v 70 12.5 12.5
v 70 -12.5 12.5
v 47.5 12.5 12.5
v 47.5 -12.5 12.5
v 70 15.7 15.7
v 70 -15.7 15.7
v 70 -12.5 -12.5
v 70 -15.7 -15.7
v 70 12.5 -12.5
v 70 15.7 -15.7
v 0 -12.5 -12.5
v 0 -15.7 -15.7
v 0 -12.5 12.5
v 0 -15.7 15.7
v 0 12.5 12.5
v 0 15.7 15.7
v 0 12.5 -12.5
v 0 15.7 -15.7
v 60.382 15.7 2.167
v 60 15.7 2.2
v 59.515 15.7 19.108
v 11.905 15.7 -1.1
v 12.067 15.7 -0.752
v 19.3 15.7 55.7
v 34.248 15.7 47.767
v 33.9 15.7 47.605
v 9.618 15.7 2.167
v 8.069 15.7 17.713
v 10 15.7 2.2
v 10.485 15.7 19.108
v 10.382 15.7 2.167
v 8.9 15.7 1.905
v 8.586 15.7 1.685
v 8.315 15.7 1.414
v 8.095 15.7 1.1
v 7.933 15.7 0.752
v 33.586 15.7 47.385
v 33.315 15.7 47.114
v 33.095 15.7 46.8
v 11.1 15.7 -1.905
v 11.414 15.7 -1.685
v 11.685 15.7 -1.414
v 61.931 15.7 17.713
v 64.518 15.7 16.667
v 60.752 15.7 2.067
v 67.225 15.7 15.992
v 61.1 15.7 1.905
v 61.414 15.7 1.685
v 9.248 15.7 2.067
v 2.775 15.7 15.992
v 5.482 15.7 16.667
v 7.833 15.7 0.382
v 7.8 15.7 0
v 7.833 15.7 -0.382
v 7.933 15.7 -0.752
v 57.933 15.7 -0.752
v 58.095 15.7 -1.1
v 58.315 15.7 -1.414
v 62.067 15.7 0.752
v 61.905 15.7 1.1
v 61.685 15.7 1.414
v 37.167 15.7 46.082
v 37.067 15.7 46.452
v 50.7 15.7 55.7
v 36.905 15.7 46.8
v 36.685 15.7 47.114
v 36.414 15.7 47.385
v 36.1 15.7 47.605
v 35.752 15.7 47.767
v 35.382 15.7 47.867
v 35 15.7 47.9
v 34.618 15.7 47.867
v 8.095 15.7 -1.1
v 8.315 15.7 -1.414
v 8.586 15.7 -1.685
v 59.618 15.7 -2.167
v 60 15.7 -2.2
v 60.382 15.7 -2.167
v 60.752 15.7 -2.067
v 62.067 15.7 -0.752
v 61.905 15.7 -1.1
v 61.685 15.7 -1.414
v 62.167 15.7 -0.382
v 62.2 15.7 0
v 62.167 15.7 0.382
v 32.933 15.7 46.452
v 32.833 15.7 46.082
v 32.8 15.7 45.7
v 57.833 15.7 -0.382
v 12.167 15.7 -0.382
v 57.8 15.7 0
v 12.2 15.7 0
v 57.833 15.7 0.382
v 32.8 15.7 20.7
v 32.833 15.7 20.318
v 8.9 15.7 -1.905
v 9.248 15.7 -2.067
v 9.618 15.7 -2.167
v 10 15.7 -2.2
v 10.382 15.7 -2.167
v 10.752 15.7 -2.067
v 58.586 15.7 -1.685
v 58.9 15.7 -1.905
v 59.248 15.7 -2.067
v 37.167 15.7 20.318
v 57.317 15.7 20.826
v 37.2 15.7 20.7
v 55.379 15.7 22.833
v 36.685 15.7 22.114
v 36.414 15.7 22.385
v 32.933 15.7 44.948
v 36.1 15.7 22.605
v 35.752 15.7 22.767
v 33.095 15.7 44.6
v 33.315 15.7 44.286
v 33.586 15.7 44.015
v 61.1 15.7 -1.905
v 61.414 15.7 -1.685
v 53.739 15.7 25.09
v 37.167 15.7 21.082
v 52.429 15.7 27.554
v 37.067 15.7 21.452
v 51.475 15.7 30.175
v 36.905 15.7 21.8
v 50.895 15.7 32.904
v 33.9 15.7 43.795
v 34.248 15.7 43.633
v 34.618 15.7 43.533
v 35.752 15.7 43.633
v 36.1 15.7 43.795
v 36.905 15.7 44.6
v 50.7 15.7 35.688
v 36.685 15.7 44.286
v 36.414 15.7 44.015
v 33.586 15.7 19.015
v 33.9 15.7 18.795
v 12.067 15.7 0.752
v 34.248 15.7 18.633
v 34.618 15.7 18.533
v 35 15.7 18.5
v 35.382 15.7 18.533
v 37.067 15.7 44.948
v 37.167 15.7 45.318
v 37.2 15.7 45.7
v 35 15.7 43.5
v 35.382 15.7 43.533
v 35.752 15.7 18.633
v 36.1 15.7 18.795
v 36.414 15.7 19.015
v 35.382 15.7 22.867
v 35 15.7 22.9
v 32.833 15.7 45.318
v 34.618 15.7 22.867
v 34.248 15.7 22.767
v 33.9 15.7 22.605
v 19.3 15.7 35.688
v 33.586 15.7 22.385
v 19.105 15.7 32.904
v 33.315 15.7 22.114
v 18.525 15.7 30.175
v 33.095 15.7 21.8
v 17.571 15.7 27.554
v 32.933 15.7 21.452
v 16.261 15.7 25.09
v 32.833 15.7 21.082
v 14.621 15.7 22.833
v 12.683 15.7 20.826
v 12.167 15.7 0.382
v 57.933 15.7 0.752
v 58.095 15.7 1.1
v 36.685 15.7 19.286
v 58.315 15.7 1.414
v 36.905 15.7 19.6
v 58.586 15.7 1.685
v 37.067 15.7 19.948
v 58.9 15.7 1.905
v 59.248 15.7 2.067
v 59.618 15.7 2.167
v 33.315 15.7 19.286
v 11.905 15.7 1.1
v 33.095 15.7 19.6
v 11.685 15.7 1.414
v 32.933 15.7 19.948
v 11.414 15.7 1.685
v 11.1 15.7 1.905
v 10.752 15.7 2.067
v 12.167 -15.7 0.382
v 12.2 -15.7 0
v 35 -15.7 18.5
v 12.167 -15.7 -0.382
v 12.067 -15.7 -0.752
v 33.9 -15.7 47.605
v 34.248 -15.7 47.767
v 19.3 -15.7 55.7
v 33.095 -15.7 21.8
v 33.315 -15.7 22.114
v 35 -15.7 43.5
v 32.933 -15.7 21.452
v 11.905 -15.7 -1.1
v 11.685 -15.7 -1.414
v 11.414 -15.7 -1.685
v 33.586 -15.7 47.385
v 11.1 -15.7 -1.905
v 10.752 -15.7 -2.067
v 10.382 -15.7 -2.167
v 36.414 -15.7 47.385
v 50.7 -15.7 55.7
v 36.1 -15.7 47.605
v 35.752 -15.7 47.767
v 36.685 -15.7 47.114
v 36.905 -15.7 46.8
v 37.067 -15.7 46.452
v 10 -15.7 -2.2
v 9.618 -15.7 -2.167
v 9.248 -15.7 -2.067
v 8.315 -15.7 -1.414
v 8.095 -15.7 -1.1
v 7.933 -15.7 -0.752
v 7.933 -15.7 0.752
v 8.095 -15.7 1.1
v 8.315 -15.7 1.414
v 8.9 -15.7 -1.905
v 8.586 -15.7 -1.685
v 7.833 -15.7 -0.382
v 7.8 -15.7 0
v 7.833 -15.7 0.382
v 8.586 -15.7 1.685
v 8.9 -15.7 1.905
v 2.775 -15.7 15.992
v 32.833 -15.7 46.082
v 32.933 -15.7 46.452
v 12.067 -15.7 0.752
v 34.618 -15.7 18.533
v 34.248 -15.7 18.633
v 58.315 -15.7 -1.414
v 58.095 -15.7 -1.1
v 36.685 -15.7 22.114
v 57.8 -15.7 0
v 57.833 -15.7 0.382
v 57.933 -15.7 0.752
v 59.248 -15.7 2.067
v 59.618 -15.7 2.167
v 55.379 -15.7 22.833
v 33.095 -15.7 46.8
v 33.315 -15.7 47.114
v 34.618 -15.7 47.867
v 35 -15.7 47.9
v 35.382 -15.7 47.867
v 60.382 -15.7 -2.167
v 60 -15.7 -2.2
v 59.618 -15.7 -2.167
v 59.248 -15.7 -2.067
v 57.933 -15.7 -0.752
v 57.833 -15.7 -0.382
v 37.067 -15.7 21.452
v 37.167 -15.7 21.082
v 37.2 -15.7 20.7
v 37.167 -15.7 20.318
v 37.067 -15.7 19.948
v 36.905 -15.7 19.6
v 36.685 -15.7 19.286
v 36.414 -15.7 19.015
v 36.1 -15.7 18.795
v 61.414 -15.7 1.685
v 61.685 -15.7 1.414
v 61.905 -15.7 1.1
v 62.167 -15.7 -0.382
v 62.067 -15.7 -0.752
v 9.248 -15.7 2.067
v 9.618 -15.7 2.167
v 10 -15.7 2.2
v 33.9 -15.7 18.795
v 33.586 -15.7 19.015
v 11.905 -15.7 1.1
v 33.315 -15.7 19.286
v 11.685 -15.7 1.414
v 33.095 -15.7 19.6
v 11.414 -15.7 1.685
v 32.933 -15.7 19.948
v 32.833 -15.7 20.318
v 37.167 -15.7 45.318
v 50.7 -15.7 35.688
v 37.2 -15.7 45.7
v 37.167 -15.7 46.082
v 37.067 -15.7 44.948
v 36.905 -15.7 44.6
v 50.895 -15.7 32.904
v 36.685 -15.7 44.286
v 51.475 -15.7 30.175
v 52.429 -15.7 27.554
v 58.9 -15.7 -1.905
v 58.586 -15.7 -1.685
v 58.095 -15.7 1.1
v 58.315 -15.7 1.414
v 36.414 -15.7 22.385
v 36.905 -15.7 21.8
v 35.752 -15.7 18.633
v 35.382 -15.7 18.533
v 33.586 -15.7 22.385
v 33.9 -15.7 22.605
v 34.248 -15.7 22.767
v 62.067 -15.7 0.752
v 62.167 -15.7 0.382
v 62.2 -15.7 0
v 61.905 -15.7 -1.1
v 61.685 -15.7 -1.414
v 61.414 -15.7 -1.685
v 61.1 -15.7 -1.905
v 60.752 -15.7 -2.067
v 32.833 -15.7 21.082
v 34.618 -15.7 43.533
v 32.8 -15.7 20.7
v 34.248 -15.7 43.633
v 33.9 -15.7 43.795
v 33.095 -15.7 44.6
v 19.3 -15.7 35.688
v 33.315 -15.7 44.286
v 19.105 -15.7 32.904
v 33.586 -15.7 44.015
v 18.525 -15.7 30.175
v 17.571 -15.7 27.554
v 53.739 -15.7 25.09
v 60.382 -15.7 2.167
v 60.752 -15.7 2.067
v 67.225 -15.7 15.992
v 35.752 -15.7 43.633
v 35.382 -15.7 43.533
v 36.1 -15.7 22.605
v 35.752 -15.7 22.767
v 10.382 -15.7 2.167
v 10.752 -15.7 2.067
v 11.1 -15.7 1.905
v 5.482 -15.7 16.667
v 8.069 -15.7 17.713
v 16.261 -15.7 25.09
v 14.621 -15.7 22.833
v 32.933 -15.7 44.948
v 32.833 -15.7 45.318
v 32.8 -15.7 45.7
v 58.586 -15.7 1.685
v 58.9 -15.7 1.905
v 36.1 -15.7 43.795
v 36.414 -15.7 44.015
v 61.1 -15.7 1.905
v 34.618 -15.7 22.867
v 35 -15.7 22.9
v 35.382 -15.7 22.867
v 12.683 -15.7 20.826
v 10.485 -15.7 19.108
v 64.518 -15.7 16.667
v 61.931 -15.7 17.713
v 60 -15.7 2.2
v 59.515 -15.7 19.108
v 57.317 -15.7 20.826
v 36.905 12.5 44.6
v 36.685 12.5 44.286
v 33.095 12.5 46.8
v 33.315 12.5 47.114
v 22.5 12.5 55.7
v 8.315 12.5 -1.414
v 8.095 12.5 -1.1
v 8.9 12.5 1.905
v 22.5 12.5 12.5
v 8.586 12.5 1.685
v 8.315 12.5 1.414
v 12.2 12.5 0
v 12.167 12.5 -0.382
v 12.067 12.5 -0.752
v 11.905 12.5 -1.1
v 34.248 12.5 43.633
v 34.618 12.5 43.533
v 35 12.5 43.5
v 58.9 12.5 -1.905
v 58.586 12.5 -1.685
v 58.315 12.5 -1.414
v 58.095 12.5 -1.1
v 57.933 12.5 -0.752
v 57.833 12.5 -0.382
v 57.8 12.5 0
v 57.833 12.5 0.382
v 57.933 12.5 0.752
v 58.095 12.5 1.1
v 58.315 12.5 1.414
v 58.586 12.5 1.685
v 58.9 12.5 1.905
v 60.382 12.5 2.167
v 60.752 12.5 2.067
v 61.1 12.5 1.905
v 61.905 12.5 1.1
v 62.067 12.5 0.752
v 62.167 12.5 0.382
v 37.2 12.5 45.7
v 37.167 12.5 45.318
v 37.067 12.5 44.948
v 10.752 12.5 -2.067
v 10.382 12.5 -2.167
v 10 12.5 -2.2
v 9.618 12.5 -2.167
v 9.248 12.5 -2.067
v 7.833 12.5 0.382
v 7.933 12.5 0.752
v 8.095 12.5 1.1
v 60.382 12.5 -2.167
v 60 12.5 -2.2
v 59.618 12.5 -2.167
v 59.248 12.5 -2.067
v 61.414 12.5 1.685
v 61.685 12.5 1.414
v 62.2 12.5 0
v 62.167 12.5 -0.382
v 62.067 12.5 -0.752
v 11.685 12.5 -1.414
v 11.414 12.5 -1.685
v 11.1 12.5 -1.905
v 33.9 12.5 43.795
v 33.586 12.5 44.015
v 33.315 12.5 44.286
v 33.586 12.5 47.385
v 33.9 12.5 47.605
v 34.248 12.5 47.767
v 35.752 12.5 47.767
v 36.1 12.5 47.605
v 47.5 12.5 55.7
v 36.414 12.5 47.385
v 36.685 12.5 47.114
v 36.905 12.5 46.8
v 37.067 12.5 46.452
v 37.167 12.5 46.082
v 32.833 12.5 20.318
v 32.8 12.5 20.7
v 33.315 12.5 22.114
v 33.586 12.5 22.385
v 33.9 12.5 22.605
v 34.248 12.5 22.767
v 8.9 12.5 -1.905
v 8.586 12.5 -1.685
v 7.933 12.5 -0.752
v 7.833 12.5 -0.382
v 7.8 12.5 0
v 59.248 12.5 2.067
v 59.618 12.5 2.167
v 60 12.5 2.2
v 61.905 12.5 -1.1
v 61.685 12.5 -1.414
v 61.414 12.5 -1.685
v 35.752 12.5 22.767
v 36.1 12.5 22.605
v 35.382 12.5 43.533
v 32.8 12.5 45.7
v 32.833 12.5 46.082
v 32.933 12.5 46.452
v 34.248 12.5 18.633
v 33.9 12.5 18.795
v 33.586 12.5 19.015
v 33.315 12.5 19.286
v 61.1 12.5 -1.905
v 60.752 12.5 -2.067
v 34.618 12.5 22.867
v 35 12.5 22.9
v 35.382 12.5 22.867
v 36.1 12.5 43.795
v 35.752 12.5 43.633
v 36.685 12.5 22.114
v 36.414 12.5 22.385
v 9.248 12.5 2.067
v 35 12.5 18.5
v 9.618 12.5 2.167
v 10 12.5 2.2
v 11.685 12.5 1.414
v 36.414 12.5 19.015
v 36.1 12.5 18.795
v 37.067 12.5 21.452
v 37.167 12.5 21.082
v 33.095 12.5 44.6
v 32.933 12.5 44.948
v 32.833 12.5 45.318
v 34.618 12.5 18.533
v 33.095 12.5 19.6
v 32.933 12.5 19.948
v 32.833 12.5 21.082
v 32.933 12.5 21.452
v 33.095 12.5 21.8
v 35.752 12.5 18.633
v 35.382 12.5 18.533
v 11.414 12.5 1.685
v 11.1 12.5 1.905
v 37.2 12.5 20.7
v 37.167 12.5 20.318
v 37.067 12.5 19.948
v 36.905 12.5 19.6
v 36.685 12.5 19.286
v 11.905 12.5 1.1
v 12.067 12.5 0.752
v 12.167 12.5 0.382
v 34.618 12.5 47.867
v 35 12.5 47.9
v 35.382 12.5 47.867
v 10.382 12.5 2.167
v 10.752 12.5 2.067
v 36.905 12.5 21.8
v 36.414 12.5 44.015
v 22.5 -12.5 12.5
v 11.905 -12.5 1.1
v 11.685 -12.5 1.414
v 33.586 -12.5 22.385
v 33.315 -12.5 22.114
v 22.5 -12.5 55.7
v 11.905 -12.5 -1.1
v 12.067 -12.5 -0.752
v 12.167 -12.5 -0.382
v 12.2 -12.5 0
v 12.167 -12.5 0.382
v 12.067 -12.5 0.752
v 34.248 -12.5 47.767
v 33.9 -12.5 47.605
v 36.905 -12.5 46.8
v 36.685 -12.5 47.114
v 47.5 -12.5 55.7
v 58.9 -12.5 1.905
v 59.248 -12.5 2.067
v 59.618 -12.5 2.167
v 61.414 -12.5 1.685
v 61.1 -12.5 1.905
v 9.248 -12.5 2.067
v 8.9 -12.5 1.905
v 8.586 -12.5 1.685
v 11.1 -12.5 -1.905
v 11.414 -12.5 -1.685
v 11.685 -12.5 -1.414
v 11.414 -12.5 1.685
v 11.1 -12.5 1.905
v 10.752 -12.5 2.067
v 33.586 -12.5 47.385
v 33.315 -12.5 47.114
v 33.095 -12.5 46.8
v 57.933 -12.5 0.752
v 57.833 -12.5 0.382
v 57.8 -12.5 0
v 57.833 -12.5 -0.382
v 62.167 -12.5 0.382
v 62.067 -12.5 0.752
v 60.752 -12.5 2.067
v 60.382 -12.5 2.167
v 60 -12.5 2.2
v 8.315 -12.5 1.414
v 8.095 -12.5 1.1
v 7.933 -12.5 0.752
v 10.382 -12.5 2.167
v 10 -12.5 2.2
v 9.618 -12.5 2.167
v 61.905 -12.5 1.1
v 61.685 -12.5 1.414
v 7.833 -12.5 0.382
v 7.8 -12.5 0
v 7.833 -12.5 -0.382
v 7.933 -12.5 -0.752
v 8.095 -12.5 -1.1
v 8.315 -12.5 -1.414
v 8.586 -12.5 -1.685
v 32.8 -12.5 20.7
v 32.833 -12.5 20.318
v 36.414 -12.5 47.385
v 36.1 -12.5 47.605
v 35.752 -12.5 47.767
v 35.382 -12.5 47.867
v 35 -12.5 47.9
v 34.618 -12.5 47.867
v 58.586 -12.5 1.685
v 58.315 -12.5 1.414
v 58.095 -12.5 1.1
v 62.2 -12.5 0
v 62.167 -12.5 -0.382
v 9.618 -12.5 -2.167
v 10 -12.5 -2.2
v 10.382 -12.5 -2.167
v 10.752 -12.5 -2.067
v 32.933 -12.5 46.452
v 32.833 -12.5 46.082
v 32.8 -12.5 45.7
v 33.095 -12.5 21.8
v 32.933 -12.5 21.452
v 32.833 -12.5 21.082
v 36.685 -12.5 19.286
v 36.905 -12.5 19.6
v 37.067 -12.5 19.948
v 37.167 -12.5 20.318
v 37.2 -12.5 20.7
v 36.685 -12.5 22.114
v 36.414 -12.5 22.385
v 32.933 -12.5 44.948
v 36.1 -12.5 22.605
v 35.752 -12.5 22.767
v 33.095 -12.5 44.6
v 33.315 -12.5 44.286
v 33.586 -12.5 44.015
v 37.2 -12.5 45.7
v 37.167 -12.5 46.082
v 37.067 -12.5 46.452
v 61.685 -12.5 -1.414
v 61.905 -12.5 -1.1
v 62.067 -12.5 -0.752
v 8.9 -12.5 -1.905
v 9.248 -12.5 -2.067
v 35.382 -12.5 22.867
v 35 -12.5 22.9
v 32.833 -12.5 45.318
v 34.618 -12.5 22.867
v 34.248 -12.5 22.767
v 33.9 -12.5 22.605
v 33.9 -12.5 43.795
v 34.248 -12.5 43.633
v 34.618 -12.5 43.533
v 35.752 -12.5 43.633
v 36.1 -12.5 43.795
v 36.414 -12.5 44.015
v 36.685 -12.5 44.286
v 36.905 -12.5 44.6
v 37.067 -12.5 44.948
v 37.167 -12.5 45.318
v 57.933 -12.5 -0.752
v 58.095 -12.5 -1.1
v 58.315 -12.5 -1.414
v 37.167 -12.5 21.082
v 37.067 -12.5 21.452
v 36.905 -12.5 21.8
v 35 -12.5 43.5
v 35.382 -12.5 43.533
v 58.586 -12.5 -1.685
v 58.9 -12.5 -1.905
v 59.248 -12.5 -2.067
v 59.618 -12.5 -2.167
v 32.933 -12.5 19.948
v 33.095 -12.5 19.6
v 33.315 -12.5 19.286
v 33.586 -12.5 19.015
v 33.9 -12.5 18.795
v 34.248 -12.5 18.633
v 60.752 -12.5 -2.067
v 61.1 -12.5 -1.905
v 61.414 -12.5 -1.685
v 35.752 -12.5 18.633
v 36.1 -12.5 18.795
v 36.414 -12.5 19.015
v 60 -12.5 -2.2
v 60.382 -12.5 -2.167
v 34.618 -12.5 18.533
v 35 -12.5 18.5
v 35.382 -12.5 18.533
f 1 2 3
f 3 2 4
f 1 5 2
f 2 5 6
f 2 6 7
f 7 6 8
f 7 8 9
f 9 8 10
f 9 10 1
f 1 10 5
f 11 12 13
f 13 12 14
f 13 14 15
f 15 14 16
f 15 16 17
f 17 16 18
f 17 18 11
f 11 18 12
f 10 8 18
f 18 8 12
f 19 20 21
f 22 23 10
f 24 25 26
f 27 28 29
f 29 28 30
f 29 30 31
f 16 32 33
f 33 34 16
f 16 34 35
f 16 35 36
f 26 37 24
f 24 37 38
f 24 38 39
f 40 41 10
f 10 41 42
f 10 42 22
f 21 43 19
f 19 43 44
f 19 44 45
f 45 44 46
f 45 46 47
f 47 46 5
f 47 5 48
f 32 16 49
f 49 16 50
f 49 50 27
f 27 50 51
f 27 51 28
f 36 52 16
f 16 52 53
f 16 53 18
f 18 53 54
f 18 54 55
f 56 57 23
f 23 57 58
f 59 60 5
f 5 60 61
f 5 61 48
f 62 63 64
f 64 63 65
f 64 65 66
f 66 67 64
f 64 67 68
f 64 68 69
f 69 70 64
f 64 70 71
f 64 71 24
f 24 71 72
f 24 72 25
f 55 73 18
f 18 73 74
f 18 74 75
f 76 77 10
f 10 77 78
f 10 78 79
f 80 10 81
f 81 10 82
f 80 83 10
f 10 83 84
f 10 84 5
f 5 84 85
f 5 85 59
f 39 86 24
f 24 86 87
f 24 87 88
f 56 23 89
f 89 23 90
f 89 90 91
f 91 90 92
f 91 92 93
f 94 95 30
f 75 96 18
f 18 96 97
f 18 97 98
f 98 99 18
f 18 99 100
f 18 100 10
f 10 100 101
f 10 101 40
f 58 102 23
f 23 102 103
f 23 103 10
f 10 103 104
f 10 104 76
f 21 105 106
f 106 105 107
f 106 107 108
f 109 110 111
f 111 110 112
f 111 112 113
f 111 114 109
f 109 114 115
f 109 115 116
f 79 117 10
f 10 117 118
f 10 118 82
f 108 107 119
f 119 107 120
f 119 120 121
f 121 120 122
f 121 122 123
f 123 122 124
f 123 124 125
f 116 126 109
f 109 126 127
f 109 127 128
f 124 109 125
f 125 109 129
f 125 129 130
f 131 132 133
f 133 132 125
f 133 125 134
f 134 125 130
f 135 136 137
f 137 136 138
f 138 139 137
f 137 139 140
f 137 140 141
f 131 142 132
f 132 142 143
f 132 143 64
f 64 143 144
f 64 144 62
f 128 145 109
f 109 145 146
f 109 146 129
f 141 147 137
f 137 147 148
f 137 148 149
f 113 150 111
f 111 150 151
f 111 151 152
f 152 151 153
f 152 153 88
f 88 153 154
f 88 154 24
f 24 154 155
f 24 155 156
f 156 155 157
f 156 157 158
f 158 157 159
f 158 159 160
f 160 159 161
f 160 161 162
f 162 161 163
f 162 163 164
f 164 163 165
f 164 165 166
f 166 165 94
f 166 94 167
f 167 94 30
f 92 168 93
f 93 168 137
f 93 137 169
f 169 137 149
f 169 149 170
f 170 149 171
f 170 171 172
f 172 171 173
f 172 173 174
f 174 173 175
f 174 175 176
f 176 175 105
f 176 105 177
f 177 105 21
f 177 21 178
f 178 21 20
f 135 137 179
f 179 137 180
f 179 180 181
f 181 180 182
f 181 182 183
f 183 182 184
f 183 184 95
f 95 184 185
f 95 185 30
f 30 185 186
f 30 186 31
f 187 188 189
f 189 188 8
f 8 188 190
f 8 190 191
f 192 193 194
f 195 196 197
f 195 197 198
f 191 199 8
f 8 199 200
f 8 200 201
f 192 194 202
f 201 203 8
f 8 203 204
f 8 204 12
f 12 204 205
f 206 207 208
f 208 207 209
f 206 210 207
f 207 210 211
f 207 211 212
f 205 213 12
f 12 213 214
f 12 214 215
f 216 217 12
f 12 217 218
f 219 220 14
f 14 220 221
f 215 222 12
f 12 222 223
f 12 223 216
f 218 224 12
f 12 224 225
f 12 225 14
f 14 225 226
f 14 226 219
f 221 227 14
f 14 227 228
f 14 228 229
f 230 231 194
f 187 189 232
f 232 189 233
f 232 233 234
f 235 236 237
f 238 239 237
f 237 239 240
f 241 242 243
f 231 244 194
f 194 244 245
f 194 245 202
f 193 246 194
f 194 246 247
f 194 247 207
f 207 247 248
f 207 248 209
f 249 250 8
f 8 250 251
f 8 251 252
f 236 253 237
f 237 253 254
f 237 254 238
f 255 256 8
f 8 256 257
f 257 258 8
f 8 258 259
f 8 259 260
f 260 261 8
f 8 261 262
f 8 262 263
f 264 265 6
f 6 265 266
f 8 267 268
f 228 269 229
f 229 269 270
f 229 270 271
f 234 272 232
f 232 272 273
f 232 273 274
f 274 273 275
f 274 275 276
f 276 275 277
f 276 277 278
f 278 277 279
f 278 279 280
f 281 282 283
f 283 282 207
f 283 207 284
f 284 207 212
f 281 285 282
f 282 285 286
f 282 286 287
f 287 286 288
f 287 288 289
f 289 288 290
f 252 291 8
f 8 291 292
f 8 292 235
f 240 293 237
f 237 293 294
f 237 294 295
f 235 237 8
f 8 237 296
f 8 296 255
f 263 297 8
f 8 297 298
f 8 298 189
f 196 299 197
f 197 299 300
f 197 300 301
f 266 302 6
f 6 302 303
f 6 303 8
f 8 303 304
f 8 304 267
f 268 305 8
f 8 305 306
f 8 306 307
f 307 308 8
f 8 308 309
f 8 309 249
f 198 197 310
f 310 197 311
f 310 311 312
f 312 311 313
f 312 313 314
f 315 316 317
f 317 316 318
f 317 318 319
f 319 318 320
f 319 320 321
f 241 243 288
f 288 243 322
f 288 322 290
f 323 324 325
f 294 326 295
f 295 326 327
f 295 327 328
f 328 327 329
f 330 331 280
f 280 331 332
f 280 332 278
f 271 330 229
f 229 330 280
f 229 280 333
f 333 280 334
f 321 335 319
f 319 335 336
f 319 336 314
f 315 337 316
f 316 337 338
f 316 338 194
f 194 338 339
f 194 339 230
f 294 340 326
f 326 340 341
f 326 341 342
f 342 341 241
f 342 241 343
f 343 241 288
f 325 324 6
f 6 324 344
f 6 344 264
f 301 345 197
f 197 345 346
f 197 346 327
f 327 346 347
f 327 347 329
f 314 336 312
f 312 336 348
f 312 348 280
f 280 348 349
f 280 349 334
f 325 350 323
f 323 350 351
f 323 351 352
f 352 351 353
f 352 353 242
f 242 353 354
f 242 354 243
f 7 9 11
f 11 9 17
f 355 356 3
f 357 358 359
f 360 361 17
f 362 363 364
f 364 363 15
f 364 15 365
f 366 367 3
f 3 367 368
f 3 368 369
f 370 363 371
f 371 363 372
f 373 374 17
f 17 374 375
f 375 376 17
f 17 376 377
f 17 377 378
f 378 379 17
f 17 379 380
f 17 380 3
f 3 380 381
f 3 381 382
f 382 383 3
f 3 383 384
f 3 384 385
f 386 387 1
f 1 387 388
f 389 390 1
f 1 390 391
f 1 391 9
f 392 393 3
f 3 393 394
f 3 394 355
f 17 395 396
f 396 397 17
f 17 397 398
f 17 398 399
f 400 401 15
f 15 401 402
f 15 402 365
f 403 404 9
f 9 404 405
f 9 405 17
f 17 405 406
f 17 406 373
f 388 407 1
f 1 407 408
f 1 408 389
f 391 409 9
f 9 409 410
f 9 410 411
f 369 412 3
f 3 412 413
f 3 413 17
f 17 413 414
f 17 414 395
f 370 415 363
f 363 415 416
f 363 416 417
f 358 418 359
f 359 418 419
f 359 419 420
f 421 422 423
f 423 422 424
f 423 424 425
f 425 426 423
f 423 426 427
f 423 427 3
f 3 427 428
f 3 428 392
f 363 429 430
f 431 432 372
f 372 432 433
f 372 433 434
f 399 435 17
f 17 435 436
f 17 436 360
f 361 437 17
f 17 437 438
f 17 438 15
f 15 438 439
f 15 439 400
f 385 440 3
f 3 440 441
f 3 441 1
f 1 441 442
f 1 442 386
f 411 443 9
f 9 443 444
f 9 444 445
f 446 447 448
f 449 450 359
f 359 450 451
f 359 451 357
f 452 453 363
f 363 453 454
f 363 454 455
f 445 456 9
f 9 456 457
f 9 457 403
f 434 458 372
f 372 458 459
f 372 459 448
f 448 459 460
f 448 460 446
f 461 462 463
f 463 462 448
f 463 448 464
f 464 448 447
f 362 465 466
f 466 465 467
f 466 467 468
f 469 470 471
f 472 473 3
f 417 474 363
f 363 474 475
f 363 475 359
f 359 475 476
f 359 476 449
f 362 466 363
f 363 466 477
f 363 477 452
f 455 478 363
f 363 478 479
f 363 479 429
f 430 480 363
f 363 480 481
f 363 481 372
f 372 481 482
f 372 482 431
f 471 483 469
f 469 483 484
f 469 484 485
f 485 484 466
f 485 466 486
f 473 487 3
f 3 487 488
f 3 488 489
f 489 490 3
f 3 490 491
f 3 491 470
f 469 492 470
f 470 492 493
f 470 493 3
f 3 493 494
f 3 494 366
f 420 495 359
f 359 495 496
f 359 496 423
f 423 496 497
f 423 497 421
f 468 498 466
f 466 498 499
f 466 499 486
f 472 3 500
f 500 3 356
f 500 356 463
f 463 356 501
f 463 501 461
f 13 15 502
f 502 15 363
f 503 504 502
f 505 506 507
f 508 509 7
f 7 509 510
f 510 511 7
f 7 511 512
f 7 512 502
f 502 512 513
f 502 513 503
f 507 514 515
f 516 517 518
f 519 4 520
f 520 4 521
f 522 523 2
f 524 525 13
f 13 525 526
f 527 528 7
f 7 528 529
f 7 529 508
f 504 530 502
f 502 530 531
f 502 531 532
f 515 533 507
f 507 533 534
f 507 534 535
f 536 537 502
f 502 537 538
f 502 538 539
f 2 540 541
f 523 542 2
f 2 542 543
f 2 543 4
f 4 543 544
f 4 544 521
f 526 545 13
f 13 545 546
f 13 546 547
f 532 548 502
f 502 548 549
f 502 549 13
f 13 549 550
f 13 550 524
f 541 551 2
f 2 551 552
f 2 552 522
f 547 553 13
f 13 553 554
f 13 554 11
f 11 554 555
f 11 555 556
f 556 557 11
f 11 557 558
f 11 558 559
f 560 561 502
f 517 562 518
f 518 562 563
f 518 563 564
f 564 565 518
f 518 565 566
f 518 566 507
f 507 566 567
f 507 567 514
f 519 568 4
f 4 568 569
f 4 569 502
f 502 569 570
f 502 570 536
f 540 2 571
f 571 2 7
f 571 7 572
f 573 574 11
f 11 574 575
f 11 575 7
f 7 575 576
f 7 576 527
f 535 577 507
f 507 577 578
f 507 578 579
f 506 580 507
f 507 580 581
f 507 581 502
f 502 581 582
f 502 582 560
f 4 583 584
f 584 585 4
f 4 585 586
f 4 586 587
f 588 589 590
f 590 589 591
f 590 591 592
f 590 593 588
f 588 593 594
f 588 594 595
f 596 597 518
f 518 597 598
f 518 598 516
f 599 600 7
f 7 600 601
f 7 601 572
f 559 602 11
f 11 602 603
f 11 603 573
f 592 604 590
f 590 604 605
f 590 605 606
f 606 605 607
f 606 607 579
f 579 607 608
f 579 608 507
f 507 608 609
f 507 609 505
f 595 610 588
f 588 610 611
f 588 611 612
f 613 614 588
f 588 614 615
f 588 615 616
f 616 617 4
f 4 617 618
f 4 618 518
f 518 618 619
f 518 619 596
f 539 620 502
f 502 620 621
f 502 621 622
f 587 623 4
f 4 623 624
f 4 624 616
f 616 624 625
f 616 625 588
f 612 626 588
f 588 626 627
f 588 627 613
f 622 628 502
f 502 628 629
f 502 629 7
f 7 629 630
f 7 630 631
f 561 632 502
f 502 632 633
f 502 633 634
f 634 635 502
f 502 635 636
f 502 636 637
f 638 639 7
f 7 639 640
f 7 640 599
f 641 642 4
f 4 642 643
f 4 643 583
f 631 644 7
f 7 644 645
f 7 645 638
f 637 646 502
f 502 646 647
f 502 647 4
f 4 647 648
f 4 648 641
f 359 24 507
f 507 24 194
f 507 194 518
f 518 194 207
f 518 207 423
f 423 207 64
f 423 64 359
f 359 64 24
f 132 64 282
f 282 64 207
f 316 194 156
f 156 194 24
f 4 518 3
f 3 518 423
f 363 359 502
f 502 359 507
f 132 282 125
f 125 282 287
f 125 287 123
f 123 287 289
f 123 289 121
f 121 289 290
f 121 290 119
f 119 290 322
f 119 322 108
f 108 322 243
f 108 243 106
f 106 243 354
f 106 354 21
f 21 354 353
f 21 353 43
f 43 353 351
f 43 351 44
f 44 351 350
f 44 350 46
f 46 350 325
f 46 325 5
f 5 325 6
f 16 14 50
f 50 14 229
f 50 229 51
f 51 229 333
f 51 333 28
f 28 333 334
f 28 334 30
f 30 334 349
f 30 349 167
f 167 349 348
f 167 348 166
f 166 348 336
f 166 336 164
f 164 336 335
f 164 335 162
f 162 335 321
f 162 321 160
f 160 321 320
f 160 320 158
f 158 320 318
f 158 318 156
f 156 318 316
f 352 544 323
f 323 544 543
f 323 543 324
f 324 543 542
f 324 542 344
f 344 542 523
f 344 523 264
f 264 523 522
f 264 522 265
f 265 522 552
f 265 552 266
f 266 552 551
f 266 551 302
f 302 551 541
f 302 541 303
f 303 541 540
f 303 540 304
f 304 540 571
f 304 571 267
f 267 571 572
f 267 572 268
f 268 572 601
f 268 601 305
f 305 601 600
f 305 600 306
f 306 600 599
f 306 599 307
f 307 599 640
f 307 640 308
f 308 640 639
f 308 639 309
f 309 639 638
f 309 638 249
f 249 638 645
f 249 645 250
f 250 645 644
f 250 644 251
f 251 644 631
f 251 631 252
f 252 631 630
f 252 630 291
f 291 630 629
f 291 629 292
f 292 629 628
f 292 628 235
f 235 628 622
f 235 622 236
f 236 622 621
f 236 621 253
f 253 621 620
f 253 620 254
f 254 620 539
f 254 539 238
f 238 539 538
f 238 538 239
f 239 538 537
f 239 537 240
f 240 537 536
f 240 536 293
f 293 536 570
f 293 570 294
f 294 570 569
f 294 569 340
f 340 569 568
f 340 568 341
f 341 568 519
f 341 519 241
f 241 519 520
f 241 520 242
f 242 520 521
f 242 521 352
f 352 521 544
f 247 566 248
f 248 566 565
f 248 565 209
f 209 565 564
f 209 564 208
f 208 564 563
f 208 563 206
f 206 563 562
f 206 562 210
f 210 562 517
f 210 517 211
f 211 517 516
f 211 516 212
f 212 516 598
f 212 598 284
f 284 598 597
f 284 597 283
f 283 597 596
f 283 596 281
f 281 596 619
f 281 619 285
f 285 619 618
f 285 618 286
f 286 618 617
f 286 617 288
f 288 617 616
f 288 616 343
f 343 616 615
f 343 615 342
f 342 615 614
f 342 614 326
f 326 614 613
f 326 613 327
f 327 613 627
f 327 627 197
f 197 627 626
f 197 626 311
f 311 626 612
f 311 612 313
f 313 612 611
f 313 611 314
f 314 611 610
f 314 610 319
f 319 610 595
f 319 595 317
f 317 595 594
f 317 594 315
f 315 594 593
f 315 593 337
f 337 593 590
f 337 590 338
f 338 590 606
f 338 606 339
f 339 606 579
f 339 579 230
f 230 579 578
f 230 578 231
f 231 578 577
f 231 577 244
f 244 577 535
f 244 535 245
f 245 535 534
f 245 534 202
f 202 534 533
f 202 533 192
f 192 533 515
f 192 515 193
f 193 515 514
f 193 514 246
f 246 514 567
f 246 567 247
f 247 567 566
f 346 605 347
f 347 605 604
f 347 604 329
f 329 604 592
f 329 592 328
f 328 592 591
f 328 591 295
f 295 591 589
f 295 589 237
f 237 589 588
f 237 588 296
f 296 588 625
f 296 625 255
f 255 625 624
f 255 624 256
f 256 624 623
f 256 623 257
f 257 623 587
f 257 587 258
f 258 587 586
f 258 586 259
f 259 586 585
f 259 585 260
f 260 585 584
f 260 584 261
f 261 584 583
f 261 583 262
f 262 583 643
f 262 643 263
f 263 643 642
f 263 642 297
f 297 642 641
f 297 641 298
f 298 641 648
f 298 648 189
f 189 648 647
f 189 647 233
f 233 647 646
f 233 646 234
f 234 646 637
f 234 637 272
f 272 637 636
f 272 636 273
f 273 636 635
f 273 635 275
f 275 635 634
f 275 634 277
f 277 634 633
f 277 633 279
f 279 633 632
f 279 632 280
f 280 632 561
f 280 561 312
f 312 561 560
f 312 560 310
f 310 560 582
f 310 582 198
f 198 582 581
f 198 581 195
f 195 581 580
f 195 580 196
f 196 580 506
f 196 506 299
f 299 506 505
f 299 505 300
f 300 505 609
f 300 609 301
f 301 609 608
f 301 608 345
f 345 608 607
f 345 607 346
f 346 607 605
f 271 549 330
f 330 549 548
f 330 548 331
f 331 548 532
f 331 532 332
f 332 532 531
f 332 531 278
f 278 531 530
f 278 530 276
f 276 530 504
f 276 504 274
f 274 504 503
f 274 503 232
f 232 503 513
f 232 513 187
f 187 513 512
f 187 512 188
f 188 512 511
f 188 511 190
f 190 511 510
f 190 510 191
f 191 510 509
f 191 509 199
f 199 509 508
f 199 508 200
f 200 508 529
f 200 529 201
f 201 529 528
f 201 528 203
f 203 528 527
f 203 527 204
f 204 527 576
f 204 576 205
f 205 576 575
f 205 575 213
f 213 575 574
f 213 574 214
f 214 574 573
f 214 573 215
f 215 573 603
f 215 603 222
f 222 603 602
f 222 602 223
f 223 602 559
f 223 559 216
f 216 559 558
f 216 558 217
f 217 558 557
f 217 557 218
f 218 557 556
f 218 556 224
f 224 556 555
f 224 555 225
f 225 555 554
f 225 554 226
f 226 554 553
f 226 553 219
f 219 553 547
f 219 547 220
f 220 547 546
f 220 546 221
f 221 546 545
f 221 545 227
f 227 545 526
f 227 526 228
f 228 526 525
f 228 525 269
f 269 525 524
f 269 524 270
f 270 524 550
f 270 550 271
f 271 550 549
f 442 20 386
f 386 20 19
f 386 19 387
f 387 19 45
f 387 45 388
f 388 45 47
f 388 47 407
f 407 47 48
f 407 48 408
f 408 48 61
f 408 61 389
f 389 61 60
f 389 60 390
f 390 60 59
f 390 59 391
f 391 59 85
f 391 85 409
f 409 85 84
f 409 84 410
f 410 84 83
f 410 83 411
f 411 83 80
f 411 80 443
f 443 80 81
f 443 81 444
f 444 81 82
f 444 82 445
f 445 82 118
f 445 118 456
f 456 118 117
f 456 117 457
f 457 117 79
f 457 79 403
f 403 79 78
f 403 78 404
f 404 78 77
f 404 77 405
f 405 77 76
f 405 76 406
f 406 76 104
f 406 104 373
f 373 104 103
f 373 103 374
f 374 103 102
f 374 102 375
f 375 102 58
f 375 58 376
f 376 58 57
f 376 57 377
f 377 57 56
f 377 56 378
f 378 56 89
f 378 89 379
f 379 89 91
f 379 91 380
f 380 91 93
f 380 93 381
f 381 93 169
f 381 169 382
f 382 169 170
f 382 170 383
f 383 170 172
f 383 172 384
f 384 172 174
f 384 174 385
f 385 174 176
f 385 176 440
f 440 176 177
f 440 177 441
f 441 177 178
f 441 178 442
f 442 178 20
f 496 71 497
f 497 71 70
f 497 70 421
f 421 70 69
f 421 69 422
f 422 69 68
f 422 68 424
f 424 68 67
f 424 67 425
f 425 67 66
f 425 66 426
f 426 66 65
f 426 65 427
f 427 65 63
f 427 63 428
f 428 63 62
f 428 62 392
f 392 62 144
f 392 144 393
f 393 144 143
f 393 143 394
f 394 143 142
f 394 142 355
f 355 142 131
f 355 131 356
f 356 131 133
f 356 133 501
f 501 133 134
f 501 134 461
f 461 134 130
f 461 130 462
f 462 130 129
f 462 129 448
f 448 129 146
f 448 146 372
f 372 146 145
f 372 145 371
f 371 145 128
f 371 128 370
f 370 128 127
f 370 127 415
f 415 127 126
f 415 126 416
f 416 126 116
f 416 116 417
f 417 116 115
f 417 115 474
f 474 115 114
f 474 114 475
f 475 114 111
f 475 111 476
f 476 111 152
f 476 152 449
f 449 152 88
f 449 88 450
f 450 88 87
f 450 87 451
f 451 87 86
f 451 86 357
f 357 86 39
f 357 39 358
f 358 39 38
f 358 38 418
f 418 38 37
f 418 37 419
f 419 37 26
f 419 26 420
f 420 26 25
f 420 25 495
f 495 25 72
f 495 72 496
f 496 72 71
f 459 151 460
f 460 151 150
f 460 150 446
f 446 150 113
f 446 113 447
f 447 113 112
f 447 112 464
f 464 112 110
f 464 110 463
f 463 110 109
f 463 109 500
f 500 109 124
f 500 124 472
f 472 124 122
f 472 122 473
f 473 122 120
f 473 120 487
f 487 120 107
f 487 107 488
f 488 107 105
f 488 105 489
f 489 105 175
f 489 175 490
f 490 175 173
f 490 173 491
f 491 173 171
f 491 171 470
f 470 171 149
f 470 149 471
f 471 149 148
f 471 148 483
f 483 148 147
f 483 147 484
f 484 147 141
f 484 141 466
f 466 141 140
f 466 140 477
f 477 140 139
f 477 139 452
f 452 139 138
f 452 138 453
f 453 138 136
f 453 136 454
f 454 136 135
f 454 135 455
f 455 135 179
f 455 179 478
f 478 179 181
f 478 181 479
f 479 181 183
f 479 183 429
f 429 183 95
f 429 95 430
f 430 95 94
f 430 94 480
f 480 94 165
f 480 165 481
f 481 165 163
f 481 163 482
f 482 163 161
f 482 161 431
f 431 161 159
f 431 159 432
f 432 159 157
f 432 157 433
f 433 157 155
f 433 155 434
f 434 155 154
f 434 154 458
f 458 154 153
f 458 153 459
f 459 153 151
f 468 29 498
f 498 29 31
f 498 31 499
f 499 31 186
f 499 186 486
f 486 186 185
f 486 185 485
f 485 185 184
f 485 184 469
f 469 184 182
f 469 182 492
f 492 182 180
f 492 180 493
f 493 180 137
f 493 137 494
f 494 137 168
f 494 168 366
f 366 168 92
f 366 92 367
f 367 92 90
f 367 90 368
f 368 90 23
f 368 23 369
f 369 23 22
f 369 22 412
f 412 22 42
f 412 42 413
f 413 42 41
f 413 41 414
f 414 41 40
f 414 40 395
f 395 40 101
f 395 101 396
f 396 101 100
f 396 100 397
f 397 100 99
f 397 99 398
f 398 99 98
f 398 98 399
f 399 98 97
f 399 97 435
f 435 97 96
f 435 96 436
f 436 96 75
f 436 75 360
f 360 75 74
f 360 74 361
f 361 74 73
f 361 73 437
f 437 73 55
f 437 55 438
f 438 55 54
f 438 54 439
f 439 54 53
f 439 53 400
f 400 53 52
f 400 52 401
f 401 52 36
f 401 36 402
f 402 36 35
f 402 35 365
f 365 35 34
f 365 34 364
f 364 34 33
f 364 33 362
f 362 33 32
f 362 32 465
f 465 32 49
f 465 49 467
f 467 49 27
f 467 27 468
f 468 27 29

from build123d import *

# Parameters (mm, degrees)
SKETCH_1_W          = 31.4
SKETCH_1_H          = 31.4
SKETCH_1_W_2        = 25
SKETCH_1_H_2        = 25
EXTRUDE_1_DEPTH     = 70
SKETCH_2_W          = 31.4
SKETCH_2_H          = 31.4
SKETCH_2_W_2        = 25
SKETCH_2_H_2        = 25
EXTRUDE_2_DEPTH     = 40
CUT_EXTRUDE_1_REACH = 84.137
SKETCH_3_W          = 25
SKETCH_3_H          = 25
FILLET_1_R          = 20
SKETCH_4_R          = 2.2
CUT_EXTRUDE_2_DEPTH = 95.807436417


with BuildPart() as part:
    # Эскиз1 → Вытянуть-Тонкостенный1 (new body)
    with BuildSketch(Plane(origin=(0, 0, 0), x_dir=(0, 0, -1), z_dir=(1, 0, 0))):
        Rectangle(SKETCH_1_W, SKETCH_1_H)
        Rectangle(SKETCH_1_W_2, SKETCH_1_H_2, mode=Mode.SUBTRACT)
    extrude(amount=EXTRUDE_1_DEPTH)

    # Эскиз2 → Вытянуть-Тонкостенный2 (add)
    with BuildSketch(Plane.XY.offset(15.7)):
        with Locations((35, 0)):
            Rectangle(SKETCH_2_W, SKETCH_2_H)
        with Locations((35, 0)):
            Rectangle(SKETCH_2_W_2, SKETCH_2_H_2, mode=Mode.SUBTRACT)
    extrude(amount=EXTRUDE_2_DEPTH)

    # Эскиз3 → Вырез-Вытянуть1 (cut, up to next)
    with BuildSketch(Plane.XY.offset(15.7), mode=Mode.PRIVATE) as cut_extrude_1_sk1:
        with Locations((35, 0)):
            Rectangle(SKETCH_3_W, SKETCH_3_H)
    cut_extrude_1_tool1 = extrude(cut_extrude_1_sk1.sketch, amount=-CUT_EXTRUDE_1_REACH, mode=Mode.PRIVATE) & part.part
    add(cut_extrude_1_tool1.solids().sort_by_distance((35, 0, 15.7))[0], mode=Mode.SUBTRACT)

    # Скругление1
    # the kernel refuses this fillet: 20 mm, written as the material it adds along each edge
    with BuildSketch(Plane(origin=(50.7, 15.7, 15.7), x_dir=(0, 0, 1), z_dir=(0, -1, 0))) as fillet_1_piece_1:
        with BuildLine():
            CenterArc((19.987746246, -20), FILLET_1_R, 90, 87.994238065)
            Line((0, -19.3), (-0.399754925, -19.286))
            ThreePointArc((-0.399754925, -19.286), (-0.4, -9.65), (-0.4, 0))
            Line((-0.4, 0), (0, 0.4))
            Line((0, 0.4), (19.987746246, 0.4))
            Line((19.987746246, 0.4), (19.987746246, 0))
        make_face()
    extrude(amount=31.4)
    with BuildSketch(Plane(origin=(19.3, -15.7, 15.7), x_dir=(-1, 0, 0), z_dir=(0, 1, 0))) as fillet_1_piece_2:
        with BuildLine():
            CenterArc((20, 19.987746246), FILLET_1_R, 180, 87.994238065)
            Line((0, 19.987746246), (-0.4, 19.987746246))
            Line((-0.4, 19.987746246), (-0.4, 0))
            Line((-0.4, 0), (0, -0.4))
            ThreePointArc((0, -0.4), (9.65, -0.4), (19.286, -0.399754925))
            Line((19.286, -0.399754925), (19.3, 0))
        make_face()
    extrude(amount=31.4)

    # Эскиз4 → Вырез-Вытянуть2 (cut, through all)
    with BuildSketch(Plane(origin=(0, 15.7, 0), x_dir=(1, 0, 0), z_dir=(0, 1, 0))):
        with Locations(Location((10, 0, 0), (0, 0, 270))):
            Circle(SKETCH_4_R)
        with Locations(Location((60, 0, 0), (0, 0, 270))):
            Circle(SKETCH_4_R)
        with Locations(Location((35, -45.7, 0), (0, 0, 270))):
            Circle(SKETCH_4_R)
        with Locations(Location((35, -20.7, 0), (0, 0, 270))):
            Circle(SKETCH_4_R)
    extrude(amount=-CUT_EXTRUDE_2_DEPTH, mode=Mode.SUBTRACT)


solid = part.part
